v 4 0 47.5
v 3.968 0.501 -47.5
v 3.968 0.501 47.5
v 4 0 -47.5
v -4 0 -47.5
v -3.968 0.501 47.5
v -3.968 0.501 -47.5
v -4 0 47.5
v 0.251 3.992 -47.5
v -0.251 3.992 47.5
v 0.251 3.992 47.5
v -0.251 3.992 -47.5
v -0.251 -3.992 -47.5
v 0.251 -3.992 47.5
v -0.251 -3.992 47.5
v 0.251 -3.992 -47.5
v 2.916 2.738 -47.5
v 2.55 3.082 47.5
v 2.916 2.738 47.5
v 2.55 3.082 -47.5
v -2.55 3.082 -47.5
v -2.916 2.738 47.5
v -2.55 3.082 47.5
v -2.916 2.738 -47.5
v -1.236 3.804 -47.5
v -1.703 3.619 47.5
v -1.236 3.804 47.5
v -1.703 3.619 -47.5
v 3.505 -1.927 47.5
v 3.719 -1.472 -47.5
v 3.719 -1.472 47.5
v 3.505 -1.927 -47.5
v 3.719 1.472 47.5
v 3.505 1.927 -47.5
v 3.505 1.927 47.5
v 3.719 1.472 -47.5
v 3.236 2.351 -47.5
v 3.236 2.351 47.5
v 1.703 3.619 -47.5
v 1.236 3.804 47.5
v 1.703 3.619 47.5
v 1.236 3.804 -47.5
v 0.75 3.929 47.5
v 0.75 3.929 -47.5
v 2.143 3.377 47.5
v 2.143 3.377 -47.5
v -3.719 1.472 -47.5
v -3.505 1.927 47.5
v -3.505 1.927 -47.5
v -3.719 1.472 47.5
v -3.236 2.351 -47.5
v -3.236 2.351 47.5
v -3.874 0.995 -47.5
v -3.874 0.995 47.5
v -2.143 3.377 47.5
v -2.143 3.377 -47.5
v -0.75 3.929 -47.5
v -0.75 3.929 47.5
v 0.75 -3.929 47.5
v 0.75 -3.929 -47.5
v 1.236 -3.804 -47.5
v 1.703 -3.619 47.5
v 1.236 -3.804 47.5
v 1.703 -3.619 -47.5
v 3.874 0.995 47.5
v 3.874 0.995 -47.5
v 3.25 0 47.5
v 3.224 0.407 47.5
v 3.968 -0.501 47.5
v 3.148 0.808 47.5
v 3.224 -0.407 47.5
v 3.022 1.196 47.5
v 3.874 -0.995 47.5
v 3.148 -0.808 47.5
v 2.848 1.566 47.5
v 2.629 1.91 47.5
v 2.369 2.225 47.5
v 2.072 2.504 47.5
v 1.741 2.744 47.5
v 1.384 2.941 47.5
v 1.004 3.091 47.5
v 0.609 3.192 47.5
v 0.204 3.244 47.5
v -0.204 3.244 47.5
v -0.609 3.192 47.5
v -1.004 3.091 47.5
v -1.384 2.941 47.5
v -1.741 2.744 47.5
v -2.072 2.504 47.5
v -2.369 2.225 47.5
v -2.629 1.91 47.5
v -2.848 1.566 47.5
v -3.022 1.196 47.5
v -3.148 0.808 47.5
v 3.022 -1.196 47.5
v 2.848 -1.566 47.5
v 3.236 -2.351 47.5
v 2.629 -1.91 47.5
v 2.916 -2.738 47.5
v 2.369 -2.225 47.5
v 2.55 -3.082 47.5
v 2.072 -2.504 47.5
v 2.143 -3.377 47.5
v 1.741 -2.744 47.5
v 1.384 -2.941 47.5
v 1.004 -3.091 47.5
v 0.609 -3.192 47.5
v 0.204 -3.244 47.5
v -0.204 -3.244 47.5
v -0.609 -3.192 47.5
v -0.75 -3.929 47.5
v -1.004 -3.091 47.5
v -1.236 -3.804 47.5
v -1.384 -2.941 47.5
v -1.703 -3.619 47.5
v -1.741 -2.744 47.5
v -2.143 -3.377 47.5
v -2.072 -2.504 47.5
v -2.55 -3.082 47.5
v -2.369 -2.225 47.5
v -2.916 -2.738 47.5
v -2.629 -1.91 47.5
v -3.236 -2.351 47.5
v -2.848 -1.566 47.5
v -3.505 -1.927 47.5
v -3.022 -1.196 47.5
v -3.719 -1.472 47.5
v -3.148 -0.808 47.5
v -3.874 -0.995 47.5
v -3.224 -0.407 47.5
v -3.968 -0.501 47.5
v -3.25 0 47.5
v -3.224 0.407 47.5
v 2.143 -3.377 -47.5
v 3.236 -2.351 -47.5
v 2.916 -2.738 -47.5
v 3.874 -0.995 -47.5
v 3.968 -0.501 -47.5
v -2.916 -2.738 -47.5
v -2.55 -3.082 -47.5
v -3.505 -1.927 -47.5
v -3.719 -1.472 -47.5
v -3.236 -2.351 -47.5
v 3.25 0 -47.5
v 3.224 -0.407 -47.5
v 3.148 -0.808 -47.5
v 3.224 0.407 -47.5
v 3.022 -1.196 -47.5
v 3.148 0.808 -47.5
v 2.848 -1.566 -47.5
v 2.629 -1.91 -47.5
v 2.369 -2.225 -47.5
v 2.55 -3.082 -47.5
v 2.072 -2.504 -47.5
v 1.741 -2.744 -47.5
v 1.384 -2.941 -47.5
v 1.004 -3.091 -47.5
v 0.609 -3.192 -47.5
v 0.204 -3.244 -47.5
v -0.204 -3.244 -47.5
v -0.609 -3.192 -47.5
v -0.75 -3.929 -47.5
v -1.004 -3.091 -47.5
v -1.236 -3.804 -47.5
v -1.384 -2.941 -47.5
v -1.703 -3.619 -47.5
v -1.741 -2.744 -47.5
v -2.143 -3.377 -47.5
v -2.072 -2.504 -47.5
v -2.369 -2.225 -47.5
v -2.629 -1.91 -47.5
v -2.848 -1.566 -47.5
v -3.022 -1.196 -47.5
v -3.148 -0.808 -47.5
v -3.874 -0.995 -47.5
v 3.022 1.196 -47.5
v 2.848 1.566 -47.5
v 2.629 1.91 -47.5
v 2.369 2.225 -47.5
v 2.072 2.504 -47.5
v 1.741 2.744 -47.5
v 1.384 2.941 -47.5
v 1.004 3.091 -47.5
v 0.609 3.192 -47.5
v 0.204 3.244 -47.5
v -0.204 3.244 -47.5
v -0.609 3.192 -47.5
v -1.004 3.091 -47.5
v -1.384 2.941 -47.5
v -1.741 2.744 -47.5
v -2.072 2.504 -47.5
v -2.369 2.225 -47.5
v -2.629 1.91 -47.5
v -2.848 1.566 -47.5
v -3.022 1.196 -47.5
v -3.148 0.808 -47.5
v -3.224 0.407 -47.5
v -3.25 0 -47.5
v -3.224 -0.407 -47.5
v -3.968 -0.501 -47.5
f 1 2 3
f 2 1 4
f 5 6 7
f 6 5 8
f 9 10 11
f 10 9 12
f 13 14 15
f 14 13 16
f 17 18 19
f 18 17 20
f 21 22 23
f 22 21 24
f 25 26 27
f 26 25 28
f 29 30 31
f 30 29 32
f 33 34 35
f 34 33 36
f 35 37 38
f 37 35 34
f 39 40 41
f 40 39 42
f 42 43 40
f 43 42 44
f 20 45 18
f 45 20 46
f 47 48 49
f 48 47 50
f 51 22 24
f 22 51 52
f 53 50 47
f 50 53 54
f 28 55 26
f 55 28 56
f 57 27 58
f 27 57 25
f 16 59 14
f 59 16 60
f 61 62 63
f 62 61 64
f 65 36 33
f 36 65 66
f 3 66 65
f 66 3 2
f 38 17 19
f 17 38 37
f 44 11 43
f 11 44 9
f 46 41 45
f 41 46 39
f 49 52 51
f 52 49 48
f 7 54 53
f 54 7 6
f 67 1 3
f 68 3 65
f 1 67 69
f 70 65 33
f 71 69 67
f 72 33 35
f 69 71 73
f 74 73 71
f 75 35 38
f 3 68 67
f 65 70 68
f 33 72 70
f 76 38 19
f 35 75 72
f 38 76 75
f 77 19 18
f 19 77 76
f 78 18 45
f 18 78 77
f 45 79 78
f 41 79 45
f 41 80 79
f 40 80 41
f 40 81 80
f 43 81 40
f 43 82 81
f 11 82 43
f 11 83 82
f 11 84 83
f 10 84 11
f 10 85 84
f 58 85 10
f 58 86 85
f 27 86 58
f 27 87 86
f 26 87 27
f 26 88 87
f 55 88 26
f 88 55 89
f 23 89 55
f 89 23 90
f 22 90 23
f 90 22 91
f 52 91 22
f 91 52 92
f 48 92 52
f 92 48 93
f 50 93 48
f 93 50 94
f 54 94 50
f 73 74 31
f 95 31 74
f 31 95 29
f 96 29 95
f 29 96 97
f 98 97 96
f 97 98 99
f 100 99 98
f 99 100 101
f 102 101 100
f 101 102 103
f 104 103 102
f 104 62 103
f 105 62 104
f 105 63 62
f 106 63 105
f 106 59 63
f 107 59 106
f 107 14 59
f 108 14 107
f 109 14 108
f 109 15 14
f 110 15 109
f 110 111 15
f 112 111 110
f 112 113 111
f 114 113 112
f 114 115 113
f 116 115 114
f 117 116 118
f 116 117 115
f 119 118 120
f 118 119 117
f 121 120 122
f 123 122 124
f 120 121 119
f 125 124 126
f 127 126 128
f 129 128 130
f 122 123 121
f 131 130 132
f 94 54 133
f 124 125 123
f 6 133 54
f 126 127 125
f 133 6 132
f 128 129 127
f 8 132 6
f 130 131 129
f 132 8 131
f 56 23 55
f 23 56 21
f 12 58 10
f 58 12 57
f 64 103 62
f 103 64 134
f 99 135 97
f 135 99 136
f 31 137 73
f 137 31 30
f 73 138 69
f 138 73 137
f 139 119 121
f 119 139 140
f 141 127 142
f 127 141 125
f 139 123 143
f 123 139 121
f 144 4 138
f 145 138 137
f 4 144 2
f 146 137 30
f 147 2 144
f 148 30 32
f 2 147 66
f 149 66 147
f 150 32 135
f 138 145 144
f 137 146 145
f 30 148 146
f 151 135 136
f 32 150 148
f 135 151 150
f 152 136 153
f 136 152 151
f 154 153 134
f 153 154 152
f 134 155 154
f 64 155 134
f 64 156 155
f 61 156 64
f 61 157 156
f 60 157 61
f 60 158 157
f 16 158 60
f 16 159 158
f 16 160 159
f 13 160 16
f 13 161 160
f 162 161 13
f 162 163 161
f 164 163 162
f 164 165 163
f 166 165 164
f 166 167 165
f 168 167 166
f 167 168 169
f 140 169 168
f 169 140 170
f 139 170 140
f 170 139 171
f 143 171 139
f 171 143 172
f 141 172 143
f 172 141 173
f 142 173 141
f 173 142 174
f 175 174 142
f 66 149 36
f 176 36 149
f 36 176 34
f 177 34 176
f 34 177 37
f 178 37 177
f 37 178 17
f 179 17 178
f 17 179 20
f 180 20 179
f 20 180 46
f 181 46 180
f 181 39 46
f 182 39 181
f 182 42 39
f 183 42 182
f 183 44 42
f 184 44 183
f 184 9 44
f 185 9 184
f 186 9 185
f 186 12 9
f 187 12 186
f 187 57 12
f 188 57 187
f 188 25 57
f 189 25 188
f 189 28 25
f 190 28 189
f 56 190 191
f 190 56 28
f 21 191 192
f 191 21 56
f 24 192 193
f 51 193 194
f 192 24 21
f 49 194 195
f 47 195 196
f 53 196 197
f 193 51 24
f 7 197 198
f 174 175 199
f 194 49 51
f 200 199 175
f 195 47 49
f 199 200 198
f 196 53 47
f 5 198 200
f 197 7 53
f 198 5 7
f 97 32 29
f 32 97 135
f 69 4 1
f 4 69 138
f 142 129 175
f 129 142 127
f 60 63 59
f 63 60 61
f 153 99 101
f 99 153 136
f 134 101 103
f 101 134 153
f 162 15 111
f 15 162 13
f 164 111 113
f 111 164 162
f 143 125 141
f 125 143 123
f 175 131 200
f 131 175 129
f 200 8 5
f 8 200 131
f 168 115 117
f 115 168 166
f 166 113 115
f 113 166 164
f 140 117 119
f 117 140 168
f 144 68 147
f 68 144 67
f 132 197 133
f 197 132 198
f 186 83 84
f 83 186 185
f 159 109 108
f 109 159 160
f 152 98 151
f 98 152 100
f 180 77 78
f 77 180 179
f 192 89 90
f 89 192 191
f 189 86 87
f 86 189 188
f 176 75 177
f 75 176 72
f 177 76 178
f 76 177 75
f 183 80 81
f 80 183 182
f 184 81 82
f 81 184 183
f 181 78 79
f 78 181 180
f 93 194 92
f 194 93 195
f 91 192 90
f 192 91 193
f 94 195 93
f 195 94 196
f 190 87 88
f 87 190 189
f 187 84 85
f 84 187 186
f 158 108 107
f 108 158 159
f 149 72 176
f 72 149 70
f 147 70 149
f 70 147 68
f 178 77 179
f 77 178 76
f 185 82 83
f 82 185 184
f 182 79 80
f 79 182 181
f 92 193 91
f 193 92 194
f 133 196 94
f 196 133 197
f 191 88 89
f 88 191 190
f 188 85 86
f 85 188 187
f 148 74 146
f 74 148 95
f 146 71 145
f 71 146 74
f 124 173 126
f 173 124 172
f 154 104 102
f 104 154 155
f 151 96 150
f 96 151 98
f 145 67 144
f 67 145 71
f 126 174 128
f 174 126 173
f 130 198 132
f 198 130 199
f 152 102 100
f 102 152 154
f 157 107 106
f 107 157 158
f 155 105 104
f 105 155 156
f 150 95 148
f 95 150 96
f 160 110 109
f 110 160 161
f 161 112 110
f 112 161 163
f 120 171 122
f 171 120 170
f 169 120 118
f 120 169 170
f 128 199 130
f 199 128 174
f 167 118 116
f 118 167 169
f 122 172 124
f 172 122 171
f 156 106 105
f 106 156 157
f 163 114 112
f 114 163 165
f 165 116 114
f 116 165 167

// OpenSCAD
$fn = 50;


difference() {
	union() {
		translate(v = [0, 0, -47.5000000000]) {
			cylinder(h = 95, r = 4.0000000000);
		}
	}
	union() {
		translate(v = [0, 0, -100.0000000000]) {
			cylinder(h = 200, r = 3.2500000000);
		}
	}
}
